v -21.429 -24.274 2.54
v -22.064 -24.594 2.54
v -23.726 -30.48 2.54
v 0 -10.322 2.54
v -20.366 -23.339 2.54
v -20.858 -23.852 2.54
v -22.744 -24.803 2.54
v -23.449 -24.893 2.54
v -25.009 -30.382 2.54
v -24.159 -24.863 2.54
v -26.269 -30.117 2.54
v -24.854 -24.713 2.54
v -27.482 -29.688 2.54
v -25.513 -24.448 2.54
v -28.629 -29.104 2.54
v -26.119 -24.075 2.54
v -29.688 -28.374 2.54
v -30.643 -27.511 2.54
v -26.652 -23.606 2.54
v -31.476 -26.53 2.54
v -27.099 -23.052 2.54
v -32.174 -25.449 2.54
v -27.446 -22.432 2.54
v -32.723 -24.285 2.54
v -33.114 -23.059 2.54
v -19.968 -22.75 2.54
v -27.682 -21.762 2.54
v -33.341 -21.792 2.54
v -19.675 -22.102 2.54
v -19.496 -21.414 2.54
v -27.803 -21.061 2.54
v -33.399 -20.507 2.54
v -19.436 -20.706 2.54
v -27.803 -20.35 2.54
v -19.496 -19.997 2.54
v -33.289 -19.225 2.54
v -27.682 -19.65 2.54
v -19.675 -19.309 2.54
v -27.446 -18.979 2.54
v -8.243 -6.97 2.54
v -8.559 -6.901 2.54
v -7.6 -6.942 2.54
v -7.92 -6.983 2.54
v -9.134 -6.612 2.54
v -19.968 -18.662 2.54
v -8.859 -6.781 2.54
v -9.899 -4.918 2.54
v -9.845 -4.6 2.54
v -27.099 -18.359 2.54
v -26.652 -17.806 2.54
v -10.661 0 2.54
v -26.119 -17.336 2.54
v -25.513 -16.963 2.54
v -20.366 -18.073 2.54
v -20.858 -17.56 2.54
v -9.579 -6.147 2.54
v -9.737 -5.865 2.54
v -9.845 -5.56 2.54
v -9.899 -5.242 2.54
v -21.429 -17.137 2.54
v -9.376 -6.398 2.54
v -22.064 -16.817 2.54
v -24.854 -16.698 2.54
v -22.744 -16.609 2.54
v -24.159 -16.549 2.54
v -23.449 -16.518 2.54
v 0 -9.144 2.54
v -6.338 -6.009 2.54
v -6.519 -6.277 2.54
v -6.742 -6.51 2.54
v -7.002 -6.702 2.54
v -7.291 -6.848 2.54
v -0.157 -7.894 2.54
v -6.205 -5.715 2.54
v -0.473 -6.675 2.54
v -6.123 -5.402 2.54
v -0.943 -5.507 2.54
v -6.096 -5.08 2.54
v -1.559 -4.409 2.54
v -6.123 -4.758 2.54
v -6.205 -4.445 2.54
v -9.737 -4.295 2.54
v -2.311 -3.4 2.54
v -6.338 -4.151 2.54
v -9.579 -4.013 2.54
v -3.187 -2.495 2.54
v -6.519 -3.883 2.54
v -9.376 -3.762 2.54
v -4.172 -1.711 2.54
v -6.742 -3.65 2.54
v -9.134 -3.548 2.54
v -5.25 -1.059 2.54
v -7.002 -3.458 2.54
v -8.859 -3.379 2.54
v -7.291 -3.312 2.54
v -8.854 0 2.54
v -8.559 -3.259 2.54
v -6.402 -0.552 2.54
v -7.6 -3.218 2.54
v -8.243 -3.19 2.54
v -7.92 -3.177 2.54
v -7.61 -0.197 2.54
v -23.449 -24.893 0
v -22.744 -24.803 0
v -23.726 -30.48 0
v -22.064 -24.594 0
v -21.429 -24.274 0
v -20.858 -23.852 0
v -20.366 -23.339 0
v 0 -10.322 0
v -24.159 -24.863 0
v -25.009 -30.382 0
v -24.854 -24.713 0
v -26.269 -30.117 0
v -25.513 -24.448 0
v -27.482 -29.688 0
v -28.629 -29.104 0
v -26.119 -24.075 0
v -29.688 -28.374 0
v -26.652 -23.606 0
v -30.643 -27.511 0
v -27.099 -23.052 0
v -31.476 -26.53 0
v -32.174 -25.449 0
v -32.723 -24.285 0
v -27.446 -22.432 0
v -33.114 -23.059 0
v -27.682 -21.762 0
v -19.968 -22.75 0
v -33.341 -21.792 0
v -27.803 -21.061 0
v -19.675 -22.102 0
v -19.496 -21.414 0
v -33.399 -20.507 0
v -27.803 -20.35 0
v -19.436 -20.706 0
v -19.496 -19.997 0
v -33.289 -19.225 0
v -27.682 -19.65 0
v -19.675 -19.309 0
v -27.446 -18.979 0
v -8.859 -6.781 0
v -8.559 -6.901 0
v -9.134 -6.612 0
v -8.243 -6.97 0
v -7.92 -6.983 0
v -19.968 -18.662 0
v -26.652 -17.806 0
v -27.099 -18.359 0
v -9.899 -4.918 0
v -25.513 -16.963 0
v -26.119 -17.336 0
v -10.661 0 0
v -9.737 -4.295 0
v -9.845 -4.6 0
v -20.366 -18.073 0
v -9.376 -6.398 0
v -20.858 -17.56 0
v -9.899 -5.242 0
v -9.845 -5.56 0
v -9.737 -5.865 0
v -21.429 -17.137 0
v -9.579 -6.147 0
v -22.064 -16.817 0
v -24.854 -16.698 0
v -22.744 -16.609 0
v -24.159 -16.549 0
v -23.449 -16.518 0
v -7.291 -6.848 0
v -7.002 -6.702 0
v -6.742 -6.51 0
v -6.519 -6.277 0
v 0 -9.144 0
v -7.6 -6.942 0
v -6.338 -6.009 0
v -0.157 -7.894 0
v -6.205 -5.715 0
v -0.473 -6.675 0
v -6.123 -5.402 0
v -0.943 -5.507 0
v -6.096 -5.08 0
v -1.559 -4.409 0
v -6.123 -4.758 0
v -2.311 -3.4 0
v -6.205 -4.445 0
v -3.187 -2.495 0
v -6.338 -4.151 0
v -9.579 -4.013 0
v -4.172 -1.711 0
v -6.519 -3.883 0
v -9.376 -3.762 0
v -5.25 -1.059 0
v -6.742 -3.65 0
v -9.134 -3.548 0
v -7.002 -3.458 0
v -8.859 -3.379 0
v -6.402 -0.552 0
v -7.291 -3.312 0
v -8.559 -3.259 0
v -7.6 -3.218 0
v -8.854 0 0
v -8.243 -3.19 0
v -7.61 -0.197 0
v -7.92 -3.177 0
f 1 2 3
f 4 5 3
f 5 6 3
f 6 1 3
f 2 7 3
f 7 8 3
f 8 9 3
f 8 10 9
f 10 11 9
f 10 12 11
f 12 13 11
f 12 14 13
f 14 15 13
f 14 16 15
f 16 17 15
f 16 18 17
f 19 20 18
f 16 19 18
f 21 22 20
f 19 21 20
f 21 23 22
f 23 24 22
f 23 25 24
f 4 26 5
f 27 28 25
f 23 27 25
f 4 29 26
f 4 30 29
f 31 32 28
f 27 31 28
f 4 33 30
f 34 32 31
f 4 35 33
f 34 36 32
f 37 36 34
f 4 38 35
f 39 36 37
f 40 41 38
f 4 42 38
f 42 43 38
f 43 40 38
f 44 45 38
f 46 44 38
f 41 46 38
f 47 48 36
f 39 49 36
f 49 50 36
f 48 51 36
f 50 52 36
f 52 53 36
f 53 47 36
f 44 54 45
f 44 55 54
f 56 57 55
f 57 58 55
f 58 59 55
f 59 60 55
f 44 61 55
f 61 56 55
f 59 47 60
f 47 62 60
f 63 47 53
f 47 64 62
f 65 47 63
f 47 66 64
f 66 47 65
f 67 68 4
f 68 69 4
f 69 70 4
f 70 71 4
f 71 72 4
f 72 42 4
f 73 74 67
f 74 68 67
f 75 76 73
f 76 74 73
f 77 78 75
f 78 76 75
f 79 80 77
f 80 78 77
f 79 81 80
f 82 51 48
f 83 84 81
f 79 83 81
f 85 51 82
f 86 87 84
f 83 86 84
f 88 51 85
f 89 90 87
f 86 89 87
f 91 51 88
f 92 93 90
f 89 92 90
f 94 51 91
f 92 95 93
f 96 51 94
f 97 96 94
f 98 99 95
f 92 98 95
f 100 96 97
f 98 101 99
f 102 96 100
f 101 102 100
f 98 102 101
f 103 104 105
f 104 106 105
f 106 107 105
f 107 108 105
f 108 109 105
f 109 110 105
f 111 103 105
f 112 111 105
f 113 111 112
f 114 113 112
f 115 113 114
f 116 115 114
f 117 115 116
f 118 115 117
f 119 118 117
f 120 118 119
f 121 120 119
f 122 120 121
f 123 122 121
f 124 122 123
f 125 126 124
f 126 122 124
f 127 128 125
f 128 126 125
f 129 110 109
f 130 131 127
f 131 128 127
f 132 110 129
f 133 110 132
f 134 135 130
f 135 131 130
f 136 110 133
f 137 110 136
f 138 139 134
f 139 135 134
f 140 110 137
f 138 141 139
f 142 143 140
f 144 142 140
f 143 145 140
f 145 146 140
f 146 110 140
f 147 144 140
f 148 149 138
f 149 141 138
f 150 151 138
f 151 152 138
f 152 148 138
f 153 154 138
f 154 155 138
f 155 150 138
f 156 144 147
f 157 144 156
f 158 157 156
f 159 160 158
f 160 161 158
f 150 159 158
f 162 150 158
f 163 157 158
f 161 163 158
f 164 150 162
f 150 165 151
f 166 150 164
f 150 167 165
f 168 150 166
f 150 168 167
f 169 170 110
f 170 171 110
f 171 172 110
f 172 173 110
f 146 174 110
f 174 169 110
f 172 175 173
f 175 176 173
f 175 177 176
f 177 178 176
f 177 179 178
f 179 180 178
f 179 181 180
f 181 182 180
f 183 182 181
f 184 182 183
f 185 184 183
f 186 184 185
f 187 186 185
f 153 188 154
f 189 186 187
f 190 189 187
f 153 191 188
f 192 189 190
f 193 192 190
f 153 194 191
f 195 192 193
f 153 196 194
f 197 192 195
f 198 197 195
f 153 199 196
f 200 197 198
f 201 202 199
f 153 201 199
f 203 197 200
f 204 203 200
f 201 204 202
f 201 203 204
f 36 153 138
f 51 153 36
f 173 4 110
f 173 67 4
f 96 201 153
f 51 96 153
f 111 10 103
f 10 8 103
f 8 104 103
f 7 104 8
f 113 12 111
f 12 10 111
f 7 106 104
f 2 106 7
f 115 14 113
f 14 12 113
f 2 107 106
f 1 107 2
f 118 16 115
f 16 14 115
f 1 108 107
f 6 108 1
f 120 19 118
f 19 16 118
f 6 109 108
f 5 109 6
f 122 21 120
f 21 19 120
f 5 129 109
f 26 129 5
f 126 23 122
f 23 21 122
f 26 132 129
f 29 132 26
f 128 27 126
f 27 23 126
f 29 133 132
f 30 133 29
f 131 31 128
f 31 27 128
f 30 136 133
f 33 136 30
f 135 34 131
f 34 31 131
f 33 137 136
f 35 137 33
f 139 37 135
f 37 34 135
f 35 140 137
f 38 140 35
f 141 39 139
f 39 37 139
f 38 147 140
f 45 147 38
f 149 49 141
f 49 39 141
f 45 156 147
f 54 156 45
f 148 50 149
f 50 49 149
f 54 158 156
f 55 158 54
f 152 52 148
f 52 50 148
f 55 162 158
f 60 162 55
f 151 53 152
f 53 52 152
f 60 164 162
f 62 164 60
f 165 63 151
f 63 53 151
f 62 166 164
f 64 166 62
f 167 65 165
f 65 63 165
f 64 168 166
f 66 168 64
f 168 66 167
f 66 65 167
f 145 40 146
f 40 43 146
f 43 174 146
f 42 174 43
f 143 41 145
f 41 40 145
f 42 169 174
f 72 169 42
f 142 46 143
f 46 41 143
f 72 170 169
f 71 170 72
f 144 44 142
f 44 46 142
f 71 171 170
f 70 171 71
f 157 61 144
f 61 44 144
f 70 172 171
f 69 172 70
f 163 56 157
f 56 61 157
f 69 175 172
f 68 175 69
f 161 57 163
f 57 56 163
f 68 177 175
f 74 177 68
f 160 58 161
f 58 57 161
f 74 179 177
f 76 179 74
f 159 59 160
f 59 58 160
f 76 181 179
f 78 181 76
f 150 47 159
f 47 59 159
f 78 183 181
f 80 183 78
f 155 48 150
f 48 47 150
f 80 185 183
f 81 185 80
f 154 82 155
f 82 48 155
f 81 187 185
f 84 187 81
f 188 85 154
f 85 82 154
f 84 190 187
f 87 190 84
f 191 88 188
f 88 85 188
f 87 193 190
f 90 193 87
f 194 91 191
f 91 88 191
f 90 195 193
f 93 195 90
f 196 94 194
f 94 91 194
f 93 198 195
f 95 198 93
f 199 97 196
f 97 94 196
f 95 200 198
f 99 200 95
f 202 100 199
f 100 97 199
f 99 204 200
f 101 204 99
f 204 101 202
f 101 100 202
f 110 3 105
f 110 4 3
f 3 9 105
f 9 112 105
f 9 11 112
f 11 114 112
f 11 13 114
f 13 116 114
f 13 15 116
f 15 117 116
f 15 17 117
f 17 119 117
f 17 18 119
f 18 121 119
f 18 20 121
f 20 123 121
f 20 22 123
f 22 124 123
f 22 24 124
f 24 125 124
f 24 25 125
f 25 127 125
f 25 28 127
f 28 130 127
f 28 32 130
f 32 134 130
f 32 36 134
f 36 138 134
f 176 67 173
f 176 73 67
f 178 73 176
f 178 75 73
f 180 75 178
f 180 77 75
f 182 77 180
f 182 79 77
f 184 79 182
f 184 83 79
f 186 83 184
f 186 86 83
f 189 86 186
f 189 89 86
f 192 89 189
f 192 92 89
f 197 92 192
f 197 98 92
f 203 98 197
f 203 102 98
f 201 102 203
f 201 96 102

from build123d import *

# Parameters (mm, degrees)
SKETCH1_W           = 38.1
SKETCH1_H           = 30.48
BOSS_EXTRUDE1_DEPTH = 2.54
SKETCH2_R           = 1.905
SKETCH2_R_2         = 4.191
CUT_EXTRUDE1_DEPTH  = 49.857875517
CUT_EXTRUDE3_DEPTH  = 2.54
CUT_EXTRUDE4_DEPTH  = 2.54
CUT_EXTRUDE5_DEPTH  = 2.54


with BuildPart() as part:
    # Sketch1 → Boss-Extrude1 (new body)
    with BuildSketch(Plane.XY):
        with Locations((-19.05, -15.24)):
            Rectangle(SKETCH1_W, SKETCH1_H)
    extrude(amount=BOSS_EXTRUDE1_DEPTH)

    # Sketch2 → Cut-Extrude1 (cut, through all)
    with BuildSketch(Plane.XY.offset(2.54)):
        with Locations((-8.001, -5.08)):
            Circle(SKETCH2_R)
        with Locations((-23.626645651, -20.705645651)):
            Circle(SKETCH2_R_2)
    extrude(amount=-CUT_EXTRUDE1_DEPTH, mode=Mode.SUBTRACT)

    # Sketch3 → Cut-Extrude3 (cut)
    with BuildSketch(Plane.XY.offset(2.54)):
        Polygon((0, -10.322504019), (-23.72616594, -30.48), (0, -30.48), align=None)
        Polygon((-38.1, 0), (-10.660565369, 0), (-38.1, -23.312249215), align=None)
    extrude(amount=-CUT_EXTRUDE3_DEPTH, mode=Mode.SUBTRACT)

    # Sketch4 → Cut-Extrude4 (cut)
    with BuildSketch(Plane.XY.offset(2.54)):
        with BuildLine():
            Line((-38.1, -23.312249215), (-38.1, -30.48))
            Line((-38.1, -30.48), (-23.72616594, -30.48))
            ThreePointArc((-23.72616594, -30.479999994), (-31.076006206, -27.034542439), (-33.288651039, -19.224578768))
            Line((-33.288651039, -19.224578768), (-38.1, -23.312249215))
        make_face()
    extrude(amount=-CUT_EXTRUDE4_DEPTH, mode=Mode.SUBTRACT)

    # Sketch5 → Cut-Extrude5 (cut)
    with BuildSketch(Plane.XY.offset(2.54)):
        with BuildLine():
            Line((0, 0), (-8.85357425, 0))
            ThreePointArc((-8.85357425, 0), (-2.73475248, -2.933386248), (0, -9.143528244))
            Line((0, -9.143528244), (0, 0))
        make_face()
    extrude(amount=-CUT_EXTRUDE5_DEPTH, mode=Mode.SUBTRACT)


solid = part.part
